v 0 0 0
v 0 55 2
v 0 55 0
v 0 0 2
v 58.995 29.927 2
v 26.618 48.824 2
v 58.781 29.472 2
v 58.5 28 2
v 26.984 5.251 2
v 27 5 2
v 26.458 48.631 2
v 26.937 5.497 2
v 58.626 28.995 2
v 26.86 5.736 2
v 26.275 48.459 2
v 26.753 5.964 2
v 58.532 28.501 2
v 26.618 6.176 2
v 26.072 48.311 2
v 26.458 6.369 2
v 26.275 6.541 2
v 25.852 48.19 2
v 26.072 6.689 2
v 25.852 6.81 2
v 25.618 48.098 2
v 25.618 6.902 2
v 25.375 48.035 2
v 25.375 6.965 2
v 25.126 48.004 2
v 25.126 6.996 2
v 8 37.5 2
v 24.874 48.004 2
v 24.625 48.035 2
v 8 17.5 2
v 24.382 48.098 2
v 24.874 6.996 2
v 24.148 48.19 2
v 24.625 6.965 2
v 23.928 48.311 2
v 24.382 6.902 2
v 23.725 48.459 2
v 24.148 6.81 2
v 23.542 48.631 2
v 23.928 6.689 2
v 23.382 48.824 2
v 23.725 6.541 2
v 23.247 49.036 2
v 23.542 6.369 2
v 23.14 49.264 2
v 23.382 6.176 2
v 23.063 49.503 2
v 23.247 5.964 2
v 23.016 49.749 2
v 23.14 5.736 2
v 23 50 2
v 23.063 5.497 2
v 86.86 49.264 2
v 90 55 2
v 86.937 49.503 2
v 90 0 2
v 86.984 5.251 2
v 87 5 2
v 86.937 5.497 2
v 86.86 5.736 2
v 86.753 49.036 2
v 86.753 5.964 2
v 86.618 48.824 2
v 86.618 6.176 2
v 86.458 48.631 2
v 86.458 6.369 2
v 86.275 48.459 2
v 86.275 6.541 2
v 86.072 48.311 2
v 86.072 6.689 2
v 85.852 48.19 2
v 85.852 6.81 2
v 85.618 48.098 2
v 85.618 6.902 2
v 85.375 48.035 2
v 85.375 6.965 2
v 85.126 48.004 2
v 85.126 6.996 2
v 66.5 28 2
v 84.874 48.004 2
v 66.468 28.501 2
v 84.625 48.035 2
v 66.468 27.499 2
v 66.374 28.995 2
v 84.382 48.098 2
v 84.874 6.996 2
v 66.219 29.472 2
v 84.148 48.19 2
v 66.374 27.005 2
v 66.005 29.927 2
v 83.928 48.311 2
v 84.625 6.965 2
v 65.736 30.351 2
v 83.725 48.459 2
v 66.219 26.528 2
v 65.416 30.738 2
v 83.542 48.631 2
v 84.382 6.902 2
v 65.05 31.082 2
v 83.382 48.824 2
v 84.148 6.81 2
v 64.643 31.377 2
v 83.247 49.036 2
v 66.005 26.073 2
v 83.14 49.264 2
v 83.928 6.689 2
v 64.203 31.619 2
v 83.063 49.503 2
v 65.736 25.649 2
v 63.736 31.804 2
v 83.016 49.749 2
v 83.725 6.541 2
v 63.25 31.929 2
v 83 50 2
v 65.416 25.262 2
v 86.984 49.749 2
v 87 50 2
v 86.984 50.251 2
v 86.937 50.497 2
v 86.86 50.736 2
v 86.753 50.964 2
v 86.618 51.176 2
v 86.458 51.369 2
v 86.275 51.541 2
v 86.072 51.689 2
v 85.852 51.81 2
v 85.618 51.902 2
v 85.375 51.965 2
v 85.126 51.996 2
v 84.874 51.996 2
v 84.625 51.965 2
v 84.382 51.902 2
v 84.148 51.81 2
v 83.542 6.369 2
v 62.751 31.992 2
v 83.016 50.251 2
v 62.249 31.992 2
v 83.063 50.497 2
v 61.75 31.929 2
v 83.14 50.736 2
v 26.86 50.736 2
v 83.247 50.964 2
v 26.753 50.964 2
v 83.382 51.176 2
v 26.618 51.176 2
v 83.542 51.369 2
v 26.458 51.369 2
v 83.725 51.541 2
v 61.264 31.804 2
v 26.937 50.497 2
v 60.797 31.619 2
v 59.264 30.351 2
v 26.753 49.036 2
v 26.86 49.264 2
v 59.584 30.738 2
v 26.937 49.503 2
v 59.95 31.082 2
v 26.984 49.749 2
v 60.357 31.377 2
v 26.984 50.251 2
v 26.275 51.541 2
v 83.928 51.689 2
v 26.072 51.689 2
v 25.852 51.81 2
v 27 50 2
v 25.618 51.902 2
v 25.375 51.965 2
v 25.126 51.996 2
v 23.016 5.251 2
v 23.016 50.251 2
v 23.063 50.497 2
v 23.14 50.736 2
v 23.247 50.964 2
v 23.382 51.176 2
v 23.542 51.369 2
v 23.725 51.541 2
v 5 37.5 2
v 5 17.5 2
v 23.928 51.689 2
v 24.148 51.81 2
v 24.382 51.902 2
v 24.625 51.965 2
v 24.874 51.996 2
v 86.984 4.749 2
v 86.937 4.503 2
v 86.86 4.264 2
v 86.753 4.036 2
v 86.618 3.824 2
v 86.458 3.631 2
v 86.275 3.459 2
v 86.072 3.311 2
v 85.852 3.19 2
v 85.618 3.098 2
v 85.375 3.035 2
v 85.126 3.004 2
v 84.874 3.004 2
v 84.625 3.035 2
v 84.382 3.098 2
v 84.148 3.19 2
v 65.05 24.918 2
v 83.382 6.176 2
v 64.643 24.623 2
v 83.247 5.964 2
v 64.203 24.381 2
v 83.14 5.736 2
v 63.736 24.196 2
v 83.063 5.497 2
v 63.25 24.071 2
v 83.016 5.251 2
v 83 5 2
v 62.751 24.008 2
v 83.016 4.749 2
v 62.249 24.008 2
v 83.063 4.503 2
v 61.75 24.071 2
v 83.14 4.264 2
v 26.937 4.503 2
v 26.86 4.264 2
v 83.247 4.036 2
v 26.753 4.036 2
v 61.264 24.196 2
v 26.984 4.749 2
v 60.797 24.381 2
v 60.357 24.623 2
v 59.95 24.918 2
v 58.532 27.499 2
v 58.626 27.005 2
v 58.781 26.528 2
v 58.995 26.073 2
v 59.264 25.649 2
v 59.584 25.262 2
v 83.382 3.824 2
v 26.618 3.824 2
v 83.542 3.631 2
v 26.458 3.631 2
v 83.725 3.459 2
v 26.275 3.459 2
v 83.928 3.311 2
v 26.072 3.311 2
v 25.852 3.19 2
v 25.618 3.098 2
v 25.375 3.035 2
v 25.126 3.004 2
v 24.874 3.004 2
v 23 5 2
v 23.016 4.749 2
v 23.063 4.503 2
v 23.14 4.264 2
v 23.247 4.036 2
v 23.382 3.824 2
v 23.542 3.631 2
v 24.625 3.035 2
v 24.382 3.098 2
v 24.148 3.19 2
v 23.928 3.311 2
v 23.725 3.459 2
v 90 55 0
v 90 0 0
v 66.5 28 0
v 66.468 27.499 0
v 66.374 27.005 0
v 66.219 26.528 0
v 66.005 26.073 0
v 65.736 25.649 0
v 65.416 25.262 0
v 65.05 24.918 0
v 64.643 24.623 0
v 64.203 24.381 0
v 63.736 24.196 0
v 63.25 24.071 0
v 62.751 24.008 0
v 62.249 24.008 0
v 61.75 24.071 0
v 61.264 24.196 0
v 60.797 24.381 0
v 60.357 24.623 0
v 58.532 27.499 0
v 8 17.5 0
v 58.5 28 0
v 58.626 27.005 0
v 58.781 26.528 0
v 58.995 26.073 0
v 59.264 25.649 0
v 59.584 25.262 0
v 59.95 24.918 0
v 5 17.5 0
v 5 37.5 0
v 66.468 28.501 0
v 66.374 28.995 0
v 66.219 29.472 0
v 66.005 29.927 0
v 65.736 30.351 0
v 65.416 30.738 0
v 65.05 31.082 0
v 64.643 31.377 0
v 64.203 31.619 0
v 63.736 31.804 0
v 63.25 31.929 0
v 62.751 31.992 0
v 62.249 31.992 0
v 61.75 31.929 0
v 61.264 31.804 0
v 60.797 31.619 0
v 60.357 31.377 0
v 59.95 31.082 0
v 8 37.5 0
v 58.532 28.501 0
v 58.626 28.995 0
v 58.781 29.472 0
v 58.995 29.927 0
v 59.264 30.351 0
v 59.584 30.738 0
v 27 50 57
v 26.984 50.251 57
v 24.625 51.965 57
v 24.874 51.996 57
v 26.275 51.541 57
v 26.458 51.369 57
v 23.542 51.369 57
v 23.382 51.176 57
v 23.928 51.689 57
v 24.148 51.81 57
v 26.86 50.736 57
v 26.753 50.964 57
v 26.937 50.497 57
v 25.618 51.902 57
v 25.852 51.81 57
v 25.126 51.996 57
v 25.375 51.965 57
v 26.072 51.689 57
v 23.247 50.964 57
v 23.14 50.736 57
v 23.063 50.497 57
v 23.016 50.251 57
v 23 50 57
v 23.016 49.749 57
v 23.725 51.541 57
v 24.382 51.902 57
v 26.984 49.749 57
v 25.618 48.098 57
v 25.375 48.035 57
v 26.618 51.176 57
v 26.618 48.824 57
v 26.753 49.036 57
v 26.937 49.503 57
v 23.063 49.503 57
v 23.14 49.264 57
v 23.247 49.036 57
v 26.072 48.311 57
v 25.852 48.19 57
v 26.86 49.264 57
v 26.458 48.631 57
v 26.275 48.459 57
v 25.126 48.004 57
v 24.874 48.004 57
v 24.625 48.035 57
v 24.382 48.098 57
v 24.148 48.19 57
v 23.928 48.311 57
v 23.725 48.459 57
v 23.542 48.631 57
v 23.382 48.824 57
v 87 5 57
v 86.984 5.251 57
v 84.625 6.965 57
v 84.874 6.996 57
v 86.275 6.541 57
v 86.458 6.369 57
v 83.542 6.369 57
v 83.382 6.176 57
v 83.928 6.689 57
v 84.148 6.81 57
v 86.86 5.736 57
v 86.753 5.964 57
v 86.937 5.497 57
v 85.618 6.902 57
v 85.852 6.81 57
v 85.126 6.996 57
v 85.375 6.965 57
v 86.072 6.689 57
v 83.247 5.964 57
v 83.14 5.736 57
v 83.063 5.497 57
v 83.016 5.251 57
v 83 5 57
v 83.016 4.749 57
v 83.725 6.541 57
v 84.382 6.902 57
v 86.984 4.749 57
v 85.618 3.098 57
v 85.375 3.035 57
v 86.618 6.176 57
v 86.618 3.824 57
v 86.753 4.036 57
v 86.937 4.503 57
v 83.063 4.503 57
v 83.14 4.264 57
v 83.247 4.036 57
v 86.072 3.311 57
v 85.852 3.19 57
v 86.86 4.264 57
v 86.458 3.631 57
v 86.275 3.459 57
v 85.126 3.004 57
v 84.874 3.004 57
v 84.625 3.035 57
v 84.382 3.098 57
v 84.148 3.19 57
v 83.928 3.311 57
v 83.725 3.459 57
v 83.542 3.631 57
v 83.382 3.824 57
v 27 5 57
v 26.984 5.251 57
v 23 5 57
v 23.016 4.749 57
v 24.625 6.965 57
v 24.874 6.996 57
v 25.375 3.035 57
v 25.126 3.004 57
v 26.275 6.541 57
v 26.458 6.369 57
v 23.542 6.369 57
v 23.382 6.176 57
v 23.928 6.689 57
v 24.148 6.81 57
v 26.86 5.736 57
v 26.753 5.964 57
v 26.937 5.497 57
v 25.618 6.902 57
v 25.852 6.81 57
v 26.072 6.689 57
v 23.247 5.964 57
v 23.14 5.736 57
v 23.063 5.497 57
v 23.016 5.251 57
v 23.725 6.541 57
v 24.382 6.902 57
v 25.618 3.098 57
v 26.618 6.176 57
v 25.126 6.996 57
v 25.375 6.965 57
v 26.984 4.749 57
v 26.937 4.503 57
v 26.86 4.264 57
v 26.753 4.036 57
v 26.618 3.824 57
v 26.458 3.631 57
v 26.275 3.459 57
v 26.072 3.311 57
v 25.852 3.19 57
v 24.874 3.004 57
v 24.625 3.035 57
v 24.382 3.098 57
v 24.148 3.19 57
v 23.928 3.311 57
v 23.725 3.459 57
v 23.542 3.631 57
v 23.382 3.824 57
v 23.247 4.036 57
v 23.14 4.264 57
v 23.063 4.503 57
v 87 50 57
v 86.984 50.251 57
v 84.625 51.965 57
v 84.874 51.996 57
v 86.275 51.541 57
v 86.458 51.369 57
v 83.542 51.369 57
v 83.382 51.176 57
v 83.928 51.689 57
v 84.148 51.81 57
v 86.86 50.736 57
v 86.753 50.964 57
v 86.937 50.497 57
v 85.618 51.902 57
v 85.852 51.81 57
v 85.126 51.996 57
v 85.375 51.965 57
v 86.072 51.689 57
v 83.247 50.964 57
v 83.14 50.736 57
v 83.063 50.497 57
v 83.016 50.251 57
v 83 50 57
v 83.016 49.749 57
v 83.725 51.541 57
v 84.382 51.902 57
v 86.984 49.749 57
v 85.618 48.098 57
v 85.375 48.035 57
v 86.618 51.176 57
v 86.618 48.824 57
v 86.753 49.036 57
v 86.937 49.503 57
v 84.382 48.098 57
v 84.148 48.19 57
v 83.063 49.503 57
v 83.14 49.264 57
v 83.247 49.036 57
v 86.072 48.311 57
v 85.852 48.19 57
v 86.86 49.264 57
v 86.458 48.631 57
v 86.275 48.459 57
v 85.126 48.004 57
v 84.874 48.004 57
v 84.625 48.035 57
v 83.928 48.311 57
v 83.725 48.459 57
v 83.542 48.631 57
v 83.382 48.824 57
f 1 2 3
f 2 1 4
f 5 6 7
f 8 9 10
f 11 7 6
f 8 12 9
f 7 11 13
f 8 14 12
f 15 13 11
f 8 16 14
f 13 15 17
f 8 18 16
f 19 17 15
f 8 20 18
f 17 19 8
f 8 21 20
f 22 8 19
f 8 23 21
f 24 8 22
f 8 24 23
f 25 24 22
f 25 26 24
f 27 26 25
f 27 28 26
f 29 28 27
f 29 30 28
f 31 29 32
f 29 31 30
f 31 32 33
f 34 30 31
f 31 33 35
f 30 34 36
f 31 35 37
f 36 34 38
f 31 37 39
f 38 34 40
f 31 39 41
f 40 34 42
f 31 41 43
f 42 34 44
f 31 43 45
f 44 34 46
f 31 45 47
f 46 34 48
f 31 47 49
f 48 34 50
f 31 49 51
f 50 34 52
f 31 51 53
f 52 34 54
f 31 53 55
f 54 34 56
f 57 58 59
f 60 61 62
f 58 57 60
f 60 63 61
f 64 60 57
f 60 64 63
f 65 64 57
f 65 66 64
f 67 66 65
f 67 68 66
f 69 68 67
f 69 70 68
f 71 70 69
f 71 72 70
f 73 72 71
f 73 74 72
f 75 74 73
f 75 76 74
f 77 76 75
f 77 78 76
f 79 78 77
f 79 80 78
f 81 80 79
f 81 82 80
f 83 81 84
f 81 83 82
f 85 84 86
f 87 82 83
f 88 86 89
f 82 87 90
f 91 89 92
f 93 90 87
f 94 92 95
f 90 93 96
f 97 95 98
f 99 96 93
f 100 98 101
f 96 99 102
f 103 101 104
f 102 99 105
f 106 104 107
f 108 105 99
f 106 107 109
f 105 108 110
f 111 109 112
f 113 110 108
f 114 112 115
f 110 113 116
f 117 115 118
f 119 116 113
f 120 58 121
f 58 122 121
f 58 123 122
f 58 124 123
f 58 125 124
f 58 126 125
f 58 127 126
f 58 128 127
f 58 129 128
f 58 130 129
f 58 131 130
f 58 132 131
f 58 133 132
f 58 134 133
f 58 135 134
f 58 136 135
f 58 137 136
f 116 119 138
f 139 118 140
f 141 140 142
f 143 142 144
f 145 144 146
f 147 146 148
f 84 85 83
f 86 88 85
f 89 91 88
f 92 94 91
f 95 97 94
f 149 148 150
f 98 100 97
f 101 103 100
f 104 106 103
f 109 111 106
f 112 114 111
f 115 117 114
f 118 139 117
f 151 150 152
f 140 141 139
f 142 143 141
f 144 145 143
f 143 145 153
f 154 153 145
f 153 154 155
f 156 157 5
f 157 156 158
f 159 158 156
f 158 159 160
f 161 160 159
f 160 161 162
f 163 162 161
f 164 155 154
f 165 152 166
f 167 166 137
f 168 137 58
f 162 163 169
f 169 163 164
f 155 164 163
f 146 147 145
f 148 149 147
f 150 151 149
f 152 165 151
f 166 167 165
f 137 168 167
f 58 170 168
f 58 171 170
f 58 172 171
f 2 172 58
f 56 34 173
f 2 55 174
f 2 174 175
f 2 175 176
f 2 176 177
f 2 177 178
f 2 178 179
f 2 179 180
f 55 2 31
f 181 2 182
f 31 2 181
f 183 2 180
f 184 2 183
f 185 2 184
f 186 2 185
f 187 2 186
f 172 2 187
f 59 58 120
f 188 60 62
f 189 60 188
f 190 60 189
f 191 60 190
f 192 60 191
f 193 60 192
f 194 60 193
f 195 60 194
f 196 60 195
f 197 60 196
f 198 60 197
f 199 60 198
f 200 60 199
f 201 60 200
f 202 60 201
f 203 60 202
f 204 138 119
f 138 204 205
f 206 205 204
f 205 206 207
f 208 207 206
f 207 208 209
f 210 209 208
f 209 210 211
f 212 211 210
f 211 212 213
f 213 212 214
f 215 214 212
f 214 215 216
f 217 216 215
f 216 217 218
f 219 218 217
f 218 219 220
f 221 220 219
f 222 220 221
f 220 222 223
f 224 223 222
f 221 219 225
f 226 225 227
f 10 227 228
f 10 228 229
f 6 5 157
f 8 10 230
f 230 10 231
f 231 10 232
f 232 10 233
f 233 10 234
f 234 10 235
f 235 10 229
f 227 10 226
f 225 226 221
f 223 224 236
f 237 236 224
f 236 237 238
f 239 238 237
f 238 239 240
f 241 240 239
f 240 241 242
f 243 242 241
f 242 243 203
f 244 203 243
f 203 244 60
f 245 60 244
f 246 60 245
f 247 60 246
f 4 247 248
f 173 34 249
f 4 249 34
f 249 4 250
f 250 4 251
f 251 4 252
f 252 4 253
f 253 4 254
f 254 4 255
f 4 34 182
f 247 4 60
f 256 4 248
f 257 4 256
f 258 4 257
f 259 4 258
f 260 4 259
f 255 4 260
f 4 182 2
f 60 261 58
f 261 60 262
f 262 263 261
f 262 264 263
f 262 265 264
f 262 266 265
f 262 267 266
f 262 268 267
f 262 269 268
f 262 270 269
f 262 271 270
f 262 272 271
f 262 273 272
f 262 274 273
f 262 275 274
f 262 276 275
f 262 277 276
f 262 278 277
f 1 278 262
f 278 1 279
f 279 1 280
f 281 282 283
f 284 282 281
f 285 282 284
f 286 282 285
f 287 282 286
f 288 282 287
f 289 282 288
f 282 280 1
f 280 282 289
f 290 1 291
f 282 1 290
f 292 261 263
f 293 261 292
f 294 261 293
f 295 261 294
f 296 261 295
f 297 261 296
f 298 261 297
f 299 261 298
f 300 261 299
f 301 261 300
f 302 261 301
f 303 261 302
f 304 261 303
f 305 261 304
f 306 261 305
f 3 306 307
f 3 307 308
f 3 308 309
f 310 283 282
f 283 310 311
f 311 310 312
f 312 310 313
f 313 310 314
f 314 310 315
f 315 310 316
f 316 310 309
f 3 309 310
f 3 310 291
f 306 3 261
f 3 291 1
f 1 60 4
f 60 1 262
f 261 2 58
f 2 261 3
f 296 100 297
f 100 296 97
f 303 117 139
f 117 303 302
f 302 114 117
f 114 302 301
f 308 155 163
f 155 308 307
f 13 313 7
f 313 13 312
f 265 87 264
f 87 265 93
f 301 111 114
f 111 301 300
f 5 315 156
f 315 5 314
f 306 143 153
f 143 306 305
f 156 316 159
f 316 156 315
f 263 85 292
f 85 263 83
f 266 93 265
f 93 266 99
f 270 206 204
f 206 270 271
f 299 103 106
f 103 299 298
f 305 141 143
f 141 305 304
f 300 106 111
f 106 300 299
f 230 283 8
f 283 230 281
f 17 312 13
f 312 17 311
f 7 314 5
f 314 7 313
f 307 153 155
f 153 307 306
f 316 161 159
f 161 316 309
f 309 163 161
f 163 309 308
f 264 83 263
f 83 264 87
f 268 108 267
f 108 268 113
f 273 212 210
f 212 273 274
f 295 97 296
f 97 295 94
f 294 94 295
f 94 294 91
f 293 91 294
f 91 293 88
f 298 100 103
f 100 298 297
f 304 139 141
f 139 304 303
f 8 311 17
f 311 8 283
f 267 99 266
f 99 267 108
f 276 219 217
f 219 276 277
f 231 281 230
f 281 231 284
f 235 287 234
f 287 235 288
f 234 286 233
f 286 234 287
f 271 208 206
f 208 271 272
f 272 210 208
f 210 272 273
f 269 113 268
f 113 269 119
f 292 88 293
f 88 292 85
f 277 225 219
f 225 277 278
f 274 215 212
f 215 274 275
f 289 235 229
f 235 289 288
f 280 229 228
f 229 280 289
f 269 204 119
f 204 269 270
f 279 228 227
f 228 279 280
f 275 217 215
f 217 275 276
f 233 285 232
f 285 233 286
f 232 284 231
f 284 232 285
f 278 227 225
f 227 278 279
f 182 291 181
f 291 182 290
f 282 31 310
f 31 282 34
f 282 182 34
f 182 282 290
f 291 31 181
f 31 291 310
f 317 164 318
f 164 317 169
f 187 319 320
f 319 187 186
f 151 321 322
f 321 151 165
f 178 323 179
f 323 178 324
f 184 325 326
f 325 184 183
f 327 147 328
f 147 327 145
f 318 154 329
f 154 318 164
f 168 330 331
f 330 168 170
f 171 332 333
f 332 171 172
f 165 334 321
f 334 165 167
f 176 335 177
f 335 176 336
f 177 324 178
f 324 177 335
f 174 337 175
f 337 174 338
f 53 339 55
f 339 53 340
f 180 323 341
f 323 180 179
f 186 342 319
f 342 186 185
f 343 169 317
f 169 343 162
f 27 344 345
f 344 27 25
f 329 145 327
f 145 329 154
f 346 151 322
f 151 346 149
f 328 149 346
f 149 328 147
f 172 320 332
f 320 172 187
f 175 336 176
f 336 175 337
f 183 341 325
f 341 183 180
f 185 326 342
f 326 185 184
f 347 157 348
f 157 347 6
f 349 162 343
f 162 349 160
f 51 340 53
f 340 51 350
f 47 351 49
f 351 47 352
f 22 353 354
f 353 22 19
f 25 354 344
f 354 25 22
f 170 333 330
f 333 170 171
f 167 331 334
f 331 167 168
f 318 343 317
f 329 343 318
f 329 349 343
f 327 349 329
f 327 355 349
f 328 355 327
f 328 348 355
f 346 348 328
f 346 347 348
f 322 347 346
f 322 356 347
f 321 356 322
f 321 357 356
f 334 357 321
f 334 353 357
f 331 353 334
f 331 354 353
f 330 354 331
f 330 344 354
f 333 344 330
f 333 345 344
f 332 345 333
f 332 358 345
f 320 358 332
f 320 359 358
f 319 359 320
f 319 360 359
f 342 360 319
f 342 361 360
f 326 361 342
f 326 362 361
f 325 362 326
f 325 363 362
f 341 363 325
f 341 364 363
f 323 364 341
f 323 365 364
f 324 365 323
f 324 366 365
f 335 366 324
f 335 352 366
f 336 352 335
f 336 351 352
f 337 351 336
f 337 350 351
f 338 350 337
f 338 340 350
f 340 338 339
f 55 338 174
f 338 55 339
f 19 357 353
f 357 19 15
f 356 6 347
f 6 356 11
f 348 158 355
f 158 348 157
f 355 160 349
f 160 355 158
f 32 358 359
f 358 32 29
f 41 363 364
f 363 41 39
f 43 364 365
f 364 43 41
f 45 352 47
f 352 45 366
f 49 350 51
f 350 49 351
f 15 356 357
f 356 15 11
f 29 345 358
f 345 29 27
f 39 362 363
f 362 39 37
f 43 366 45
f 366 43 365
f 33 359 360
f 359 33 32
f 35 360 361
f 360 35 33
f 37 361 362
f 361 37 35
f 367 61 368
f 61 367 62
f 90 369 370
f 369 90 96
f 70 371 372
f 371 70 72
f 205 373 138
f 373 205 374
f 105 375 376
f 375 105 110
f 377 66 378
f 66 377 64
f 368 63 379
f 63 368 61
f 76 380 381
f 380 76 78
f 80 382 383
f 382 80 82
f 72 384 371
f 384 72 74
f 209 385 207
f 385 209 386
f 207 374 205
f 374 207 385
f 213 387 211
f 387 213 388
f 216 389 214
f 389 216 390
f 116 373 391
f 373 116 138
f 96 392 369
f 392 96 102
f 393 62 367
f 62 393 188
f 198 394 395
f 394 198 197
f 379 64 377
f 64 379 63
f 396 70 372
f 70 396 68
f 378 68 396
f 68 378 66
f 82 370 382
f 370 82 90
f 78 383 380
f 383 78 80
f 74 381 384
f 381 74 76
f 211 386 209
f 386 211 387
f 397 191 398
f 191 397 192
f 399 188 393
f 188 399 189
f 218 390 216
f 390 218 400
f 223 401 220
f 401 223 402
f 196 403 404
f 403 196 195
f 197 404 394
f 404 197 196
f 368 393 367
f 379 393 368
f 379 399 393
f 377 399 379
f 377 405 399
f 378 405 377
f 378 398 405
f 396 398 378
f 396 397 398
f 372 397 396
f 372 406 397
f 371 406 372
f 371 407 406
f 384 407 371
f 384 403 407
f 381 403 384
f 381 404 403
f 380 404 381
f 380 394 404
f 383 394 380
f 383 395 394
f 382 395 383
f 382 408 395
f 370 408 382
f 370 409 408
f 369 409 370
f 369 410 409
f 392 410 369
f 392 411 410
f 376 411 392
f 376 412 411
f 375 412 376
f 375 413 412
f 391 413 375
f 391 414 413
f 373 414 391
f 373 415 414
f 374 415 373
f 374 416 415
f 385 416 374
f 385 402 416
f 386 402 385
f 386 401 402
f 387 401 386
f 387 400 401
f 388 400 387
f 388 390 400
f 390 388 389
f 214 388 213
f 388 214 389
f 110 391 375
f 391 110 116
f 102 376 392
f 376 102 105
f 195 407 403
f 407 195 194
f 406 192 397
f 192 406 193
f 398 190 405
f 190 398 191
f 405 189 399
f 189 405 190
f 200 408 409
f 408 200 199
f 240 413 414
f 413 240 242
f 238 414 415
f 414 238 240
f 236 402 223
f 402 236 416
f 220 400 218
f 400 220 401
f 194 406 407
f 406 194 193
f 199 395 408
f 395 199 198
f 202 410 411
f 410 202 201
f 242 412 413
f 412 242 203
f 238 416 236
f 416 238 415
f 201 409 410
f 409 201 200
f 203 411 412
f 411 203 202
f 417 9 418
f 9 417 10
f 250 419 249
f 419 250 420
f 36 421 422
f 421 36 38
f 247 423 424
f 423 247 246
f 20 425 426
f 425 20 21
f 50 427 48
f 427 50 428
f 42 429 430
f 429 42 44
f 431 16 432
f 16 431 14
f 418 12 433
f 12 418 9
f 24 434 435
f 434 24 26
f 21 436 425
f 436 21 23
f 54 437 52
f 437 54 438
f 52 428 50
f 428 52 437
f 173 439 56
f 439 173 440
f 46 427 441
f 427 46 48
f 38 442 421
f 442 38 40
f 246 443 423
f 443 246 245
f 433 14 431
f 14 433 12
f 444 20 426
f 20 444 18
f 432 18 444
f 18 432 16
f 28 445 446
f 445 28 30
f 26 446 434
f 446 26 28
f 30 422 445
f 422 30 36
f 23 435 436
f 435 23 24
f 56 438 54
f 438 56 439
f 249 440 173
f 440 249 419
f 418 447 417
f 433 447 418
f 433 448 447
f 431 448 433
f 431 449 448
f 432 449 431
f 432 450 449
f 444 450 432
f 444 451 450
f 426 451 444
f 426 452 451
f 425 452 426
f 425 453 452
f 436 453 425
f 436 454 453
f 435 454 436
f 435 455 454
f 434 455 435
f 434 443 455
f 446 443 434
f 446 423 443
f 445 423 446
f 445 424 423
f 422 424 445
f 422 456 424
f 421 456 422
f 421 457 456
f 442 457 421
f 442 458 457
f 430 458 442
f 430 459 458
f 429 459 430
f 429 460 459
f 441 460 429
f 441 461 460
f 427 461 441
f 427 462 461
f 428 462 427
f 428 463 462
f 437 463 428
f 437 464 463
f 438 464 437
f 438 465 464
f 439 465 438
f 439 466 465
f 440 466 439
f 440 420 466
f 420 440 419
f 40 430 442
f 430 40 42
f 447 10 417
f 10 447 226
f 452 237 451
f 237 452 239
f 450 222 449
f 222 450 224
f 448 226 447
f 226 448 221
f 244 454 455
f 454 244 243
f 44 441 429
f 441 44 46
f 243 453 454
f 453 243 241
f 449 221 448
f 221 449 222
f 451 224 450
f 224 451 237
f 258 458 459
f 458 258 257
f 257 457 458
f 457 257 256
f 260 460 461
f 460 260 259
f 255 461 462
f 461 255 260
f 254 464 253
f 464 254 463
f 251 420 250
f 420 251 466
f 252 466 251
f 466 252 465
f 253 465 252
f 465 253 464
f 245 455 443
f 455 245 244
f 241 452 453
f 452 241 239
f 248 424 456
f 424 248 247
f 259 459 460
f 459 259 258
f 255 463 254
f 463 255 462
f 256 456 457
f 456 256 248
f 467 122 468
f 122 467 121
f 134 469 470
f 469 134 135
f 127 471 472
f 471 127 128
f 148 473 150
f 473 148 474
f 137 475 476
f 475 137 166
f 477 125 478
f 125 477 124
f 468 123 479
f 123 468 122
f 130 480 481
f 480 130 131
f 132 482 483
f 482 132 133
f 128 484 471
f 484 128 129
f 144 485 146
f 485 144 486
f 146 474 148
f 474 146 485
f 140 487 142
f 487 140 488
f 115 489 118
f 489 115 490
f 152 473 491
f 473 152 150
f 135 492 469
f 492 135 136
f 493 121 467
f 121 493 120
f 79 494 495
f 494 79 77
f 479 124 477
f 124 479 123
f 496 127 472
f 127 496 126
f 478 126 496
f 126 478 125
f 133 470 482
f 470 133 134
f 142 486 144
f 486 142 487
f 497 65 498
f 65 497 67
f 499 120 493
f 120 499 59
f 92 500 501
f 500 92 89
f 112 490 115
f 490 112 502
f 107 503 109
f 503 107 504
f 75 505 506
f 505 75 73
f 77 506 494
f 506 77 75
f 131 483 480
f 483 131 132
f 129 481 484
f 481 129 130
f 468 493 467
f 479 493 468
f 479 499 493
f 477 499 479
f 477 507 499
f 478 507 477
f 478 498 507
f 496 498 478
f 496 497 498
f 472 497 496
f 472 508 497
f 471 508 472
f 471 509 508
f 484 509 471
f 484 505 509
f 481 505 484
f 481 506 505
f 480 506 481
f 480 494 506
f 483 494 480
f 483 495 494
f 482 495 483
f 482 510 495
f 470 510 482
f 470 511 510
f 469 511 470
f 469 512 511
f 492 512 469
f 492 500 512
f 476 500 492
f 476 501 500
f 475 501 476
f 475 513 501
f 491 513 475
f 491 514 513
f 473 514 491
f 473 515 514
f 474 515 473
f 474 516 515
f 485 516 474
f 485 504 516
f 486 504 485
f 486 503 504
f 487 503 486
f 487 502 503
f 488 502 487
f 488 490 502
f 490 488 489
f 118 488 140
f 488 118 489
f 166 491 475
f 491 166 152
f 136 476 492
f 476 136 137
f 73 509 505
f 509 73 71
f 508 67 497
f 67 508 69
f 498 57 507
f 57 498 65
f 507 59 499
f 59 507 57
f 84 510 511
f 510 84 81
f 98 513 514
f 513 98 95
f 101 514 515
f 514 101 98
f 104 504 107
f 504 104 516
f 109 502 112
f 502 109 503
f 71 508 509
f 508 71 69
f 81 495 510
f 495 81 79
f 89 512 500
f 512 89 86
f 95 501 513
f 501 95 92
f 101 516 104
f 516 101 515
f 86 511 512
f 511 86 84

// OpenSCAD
// Base plate w/guide rods
difference() {
    // Bottom 
        cube([90,55,2]);
    
    // Hole for lighting wiring
    translate([62.5, 28, -1]) {
        color([1,1,1])
        cylinder(h=13, d=8,
        $fn=50);  
    }
    // Slot for Pi Camera ribbon cable
    translate([5, 17.5, -1]) {
        color([1,0,0])
        cube([3,20,5]);  
    }
 }

// Guide rods in each corner
  translate([25,50,2]) cylinder(h=55, d=4,
    $fn=50);
  translate([85,5,2]) cylinder(h=55, d=4,
    $fn=50);
  translate([25,5,2]) cylinder(h=55, d=4,
    $fn=50);
  translate([85,50,2]) cylinder(h=55, d=4,
    $fn=50);
